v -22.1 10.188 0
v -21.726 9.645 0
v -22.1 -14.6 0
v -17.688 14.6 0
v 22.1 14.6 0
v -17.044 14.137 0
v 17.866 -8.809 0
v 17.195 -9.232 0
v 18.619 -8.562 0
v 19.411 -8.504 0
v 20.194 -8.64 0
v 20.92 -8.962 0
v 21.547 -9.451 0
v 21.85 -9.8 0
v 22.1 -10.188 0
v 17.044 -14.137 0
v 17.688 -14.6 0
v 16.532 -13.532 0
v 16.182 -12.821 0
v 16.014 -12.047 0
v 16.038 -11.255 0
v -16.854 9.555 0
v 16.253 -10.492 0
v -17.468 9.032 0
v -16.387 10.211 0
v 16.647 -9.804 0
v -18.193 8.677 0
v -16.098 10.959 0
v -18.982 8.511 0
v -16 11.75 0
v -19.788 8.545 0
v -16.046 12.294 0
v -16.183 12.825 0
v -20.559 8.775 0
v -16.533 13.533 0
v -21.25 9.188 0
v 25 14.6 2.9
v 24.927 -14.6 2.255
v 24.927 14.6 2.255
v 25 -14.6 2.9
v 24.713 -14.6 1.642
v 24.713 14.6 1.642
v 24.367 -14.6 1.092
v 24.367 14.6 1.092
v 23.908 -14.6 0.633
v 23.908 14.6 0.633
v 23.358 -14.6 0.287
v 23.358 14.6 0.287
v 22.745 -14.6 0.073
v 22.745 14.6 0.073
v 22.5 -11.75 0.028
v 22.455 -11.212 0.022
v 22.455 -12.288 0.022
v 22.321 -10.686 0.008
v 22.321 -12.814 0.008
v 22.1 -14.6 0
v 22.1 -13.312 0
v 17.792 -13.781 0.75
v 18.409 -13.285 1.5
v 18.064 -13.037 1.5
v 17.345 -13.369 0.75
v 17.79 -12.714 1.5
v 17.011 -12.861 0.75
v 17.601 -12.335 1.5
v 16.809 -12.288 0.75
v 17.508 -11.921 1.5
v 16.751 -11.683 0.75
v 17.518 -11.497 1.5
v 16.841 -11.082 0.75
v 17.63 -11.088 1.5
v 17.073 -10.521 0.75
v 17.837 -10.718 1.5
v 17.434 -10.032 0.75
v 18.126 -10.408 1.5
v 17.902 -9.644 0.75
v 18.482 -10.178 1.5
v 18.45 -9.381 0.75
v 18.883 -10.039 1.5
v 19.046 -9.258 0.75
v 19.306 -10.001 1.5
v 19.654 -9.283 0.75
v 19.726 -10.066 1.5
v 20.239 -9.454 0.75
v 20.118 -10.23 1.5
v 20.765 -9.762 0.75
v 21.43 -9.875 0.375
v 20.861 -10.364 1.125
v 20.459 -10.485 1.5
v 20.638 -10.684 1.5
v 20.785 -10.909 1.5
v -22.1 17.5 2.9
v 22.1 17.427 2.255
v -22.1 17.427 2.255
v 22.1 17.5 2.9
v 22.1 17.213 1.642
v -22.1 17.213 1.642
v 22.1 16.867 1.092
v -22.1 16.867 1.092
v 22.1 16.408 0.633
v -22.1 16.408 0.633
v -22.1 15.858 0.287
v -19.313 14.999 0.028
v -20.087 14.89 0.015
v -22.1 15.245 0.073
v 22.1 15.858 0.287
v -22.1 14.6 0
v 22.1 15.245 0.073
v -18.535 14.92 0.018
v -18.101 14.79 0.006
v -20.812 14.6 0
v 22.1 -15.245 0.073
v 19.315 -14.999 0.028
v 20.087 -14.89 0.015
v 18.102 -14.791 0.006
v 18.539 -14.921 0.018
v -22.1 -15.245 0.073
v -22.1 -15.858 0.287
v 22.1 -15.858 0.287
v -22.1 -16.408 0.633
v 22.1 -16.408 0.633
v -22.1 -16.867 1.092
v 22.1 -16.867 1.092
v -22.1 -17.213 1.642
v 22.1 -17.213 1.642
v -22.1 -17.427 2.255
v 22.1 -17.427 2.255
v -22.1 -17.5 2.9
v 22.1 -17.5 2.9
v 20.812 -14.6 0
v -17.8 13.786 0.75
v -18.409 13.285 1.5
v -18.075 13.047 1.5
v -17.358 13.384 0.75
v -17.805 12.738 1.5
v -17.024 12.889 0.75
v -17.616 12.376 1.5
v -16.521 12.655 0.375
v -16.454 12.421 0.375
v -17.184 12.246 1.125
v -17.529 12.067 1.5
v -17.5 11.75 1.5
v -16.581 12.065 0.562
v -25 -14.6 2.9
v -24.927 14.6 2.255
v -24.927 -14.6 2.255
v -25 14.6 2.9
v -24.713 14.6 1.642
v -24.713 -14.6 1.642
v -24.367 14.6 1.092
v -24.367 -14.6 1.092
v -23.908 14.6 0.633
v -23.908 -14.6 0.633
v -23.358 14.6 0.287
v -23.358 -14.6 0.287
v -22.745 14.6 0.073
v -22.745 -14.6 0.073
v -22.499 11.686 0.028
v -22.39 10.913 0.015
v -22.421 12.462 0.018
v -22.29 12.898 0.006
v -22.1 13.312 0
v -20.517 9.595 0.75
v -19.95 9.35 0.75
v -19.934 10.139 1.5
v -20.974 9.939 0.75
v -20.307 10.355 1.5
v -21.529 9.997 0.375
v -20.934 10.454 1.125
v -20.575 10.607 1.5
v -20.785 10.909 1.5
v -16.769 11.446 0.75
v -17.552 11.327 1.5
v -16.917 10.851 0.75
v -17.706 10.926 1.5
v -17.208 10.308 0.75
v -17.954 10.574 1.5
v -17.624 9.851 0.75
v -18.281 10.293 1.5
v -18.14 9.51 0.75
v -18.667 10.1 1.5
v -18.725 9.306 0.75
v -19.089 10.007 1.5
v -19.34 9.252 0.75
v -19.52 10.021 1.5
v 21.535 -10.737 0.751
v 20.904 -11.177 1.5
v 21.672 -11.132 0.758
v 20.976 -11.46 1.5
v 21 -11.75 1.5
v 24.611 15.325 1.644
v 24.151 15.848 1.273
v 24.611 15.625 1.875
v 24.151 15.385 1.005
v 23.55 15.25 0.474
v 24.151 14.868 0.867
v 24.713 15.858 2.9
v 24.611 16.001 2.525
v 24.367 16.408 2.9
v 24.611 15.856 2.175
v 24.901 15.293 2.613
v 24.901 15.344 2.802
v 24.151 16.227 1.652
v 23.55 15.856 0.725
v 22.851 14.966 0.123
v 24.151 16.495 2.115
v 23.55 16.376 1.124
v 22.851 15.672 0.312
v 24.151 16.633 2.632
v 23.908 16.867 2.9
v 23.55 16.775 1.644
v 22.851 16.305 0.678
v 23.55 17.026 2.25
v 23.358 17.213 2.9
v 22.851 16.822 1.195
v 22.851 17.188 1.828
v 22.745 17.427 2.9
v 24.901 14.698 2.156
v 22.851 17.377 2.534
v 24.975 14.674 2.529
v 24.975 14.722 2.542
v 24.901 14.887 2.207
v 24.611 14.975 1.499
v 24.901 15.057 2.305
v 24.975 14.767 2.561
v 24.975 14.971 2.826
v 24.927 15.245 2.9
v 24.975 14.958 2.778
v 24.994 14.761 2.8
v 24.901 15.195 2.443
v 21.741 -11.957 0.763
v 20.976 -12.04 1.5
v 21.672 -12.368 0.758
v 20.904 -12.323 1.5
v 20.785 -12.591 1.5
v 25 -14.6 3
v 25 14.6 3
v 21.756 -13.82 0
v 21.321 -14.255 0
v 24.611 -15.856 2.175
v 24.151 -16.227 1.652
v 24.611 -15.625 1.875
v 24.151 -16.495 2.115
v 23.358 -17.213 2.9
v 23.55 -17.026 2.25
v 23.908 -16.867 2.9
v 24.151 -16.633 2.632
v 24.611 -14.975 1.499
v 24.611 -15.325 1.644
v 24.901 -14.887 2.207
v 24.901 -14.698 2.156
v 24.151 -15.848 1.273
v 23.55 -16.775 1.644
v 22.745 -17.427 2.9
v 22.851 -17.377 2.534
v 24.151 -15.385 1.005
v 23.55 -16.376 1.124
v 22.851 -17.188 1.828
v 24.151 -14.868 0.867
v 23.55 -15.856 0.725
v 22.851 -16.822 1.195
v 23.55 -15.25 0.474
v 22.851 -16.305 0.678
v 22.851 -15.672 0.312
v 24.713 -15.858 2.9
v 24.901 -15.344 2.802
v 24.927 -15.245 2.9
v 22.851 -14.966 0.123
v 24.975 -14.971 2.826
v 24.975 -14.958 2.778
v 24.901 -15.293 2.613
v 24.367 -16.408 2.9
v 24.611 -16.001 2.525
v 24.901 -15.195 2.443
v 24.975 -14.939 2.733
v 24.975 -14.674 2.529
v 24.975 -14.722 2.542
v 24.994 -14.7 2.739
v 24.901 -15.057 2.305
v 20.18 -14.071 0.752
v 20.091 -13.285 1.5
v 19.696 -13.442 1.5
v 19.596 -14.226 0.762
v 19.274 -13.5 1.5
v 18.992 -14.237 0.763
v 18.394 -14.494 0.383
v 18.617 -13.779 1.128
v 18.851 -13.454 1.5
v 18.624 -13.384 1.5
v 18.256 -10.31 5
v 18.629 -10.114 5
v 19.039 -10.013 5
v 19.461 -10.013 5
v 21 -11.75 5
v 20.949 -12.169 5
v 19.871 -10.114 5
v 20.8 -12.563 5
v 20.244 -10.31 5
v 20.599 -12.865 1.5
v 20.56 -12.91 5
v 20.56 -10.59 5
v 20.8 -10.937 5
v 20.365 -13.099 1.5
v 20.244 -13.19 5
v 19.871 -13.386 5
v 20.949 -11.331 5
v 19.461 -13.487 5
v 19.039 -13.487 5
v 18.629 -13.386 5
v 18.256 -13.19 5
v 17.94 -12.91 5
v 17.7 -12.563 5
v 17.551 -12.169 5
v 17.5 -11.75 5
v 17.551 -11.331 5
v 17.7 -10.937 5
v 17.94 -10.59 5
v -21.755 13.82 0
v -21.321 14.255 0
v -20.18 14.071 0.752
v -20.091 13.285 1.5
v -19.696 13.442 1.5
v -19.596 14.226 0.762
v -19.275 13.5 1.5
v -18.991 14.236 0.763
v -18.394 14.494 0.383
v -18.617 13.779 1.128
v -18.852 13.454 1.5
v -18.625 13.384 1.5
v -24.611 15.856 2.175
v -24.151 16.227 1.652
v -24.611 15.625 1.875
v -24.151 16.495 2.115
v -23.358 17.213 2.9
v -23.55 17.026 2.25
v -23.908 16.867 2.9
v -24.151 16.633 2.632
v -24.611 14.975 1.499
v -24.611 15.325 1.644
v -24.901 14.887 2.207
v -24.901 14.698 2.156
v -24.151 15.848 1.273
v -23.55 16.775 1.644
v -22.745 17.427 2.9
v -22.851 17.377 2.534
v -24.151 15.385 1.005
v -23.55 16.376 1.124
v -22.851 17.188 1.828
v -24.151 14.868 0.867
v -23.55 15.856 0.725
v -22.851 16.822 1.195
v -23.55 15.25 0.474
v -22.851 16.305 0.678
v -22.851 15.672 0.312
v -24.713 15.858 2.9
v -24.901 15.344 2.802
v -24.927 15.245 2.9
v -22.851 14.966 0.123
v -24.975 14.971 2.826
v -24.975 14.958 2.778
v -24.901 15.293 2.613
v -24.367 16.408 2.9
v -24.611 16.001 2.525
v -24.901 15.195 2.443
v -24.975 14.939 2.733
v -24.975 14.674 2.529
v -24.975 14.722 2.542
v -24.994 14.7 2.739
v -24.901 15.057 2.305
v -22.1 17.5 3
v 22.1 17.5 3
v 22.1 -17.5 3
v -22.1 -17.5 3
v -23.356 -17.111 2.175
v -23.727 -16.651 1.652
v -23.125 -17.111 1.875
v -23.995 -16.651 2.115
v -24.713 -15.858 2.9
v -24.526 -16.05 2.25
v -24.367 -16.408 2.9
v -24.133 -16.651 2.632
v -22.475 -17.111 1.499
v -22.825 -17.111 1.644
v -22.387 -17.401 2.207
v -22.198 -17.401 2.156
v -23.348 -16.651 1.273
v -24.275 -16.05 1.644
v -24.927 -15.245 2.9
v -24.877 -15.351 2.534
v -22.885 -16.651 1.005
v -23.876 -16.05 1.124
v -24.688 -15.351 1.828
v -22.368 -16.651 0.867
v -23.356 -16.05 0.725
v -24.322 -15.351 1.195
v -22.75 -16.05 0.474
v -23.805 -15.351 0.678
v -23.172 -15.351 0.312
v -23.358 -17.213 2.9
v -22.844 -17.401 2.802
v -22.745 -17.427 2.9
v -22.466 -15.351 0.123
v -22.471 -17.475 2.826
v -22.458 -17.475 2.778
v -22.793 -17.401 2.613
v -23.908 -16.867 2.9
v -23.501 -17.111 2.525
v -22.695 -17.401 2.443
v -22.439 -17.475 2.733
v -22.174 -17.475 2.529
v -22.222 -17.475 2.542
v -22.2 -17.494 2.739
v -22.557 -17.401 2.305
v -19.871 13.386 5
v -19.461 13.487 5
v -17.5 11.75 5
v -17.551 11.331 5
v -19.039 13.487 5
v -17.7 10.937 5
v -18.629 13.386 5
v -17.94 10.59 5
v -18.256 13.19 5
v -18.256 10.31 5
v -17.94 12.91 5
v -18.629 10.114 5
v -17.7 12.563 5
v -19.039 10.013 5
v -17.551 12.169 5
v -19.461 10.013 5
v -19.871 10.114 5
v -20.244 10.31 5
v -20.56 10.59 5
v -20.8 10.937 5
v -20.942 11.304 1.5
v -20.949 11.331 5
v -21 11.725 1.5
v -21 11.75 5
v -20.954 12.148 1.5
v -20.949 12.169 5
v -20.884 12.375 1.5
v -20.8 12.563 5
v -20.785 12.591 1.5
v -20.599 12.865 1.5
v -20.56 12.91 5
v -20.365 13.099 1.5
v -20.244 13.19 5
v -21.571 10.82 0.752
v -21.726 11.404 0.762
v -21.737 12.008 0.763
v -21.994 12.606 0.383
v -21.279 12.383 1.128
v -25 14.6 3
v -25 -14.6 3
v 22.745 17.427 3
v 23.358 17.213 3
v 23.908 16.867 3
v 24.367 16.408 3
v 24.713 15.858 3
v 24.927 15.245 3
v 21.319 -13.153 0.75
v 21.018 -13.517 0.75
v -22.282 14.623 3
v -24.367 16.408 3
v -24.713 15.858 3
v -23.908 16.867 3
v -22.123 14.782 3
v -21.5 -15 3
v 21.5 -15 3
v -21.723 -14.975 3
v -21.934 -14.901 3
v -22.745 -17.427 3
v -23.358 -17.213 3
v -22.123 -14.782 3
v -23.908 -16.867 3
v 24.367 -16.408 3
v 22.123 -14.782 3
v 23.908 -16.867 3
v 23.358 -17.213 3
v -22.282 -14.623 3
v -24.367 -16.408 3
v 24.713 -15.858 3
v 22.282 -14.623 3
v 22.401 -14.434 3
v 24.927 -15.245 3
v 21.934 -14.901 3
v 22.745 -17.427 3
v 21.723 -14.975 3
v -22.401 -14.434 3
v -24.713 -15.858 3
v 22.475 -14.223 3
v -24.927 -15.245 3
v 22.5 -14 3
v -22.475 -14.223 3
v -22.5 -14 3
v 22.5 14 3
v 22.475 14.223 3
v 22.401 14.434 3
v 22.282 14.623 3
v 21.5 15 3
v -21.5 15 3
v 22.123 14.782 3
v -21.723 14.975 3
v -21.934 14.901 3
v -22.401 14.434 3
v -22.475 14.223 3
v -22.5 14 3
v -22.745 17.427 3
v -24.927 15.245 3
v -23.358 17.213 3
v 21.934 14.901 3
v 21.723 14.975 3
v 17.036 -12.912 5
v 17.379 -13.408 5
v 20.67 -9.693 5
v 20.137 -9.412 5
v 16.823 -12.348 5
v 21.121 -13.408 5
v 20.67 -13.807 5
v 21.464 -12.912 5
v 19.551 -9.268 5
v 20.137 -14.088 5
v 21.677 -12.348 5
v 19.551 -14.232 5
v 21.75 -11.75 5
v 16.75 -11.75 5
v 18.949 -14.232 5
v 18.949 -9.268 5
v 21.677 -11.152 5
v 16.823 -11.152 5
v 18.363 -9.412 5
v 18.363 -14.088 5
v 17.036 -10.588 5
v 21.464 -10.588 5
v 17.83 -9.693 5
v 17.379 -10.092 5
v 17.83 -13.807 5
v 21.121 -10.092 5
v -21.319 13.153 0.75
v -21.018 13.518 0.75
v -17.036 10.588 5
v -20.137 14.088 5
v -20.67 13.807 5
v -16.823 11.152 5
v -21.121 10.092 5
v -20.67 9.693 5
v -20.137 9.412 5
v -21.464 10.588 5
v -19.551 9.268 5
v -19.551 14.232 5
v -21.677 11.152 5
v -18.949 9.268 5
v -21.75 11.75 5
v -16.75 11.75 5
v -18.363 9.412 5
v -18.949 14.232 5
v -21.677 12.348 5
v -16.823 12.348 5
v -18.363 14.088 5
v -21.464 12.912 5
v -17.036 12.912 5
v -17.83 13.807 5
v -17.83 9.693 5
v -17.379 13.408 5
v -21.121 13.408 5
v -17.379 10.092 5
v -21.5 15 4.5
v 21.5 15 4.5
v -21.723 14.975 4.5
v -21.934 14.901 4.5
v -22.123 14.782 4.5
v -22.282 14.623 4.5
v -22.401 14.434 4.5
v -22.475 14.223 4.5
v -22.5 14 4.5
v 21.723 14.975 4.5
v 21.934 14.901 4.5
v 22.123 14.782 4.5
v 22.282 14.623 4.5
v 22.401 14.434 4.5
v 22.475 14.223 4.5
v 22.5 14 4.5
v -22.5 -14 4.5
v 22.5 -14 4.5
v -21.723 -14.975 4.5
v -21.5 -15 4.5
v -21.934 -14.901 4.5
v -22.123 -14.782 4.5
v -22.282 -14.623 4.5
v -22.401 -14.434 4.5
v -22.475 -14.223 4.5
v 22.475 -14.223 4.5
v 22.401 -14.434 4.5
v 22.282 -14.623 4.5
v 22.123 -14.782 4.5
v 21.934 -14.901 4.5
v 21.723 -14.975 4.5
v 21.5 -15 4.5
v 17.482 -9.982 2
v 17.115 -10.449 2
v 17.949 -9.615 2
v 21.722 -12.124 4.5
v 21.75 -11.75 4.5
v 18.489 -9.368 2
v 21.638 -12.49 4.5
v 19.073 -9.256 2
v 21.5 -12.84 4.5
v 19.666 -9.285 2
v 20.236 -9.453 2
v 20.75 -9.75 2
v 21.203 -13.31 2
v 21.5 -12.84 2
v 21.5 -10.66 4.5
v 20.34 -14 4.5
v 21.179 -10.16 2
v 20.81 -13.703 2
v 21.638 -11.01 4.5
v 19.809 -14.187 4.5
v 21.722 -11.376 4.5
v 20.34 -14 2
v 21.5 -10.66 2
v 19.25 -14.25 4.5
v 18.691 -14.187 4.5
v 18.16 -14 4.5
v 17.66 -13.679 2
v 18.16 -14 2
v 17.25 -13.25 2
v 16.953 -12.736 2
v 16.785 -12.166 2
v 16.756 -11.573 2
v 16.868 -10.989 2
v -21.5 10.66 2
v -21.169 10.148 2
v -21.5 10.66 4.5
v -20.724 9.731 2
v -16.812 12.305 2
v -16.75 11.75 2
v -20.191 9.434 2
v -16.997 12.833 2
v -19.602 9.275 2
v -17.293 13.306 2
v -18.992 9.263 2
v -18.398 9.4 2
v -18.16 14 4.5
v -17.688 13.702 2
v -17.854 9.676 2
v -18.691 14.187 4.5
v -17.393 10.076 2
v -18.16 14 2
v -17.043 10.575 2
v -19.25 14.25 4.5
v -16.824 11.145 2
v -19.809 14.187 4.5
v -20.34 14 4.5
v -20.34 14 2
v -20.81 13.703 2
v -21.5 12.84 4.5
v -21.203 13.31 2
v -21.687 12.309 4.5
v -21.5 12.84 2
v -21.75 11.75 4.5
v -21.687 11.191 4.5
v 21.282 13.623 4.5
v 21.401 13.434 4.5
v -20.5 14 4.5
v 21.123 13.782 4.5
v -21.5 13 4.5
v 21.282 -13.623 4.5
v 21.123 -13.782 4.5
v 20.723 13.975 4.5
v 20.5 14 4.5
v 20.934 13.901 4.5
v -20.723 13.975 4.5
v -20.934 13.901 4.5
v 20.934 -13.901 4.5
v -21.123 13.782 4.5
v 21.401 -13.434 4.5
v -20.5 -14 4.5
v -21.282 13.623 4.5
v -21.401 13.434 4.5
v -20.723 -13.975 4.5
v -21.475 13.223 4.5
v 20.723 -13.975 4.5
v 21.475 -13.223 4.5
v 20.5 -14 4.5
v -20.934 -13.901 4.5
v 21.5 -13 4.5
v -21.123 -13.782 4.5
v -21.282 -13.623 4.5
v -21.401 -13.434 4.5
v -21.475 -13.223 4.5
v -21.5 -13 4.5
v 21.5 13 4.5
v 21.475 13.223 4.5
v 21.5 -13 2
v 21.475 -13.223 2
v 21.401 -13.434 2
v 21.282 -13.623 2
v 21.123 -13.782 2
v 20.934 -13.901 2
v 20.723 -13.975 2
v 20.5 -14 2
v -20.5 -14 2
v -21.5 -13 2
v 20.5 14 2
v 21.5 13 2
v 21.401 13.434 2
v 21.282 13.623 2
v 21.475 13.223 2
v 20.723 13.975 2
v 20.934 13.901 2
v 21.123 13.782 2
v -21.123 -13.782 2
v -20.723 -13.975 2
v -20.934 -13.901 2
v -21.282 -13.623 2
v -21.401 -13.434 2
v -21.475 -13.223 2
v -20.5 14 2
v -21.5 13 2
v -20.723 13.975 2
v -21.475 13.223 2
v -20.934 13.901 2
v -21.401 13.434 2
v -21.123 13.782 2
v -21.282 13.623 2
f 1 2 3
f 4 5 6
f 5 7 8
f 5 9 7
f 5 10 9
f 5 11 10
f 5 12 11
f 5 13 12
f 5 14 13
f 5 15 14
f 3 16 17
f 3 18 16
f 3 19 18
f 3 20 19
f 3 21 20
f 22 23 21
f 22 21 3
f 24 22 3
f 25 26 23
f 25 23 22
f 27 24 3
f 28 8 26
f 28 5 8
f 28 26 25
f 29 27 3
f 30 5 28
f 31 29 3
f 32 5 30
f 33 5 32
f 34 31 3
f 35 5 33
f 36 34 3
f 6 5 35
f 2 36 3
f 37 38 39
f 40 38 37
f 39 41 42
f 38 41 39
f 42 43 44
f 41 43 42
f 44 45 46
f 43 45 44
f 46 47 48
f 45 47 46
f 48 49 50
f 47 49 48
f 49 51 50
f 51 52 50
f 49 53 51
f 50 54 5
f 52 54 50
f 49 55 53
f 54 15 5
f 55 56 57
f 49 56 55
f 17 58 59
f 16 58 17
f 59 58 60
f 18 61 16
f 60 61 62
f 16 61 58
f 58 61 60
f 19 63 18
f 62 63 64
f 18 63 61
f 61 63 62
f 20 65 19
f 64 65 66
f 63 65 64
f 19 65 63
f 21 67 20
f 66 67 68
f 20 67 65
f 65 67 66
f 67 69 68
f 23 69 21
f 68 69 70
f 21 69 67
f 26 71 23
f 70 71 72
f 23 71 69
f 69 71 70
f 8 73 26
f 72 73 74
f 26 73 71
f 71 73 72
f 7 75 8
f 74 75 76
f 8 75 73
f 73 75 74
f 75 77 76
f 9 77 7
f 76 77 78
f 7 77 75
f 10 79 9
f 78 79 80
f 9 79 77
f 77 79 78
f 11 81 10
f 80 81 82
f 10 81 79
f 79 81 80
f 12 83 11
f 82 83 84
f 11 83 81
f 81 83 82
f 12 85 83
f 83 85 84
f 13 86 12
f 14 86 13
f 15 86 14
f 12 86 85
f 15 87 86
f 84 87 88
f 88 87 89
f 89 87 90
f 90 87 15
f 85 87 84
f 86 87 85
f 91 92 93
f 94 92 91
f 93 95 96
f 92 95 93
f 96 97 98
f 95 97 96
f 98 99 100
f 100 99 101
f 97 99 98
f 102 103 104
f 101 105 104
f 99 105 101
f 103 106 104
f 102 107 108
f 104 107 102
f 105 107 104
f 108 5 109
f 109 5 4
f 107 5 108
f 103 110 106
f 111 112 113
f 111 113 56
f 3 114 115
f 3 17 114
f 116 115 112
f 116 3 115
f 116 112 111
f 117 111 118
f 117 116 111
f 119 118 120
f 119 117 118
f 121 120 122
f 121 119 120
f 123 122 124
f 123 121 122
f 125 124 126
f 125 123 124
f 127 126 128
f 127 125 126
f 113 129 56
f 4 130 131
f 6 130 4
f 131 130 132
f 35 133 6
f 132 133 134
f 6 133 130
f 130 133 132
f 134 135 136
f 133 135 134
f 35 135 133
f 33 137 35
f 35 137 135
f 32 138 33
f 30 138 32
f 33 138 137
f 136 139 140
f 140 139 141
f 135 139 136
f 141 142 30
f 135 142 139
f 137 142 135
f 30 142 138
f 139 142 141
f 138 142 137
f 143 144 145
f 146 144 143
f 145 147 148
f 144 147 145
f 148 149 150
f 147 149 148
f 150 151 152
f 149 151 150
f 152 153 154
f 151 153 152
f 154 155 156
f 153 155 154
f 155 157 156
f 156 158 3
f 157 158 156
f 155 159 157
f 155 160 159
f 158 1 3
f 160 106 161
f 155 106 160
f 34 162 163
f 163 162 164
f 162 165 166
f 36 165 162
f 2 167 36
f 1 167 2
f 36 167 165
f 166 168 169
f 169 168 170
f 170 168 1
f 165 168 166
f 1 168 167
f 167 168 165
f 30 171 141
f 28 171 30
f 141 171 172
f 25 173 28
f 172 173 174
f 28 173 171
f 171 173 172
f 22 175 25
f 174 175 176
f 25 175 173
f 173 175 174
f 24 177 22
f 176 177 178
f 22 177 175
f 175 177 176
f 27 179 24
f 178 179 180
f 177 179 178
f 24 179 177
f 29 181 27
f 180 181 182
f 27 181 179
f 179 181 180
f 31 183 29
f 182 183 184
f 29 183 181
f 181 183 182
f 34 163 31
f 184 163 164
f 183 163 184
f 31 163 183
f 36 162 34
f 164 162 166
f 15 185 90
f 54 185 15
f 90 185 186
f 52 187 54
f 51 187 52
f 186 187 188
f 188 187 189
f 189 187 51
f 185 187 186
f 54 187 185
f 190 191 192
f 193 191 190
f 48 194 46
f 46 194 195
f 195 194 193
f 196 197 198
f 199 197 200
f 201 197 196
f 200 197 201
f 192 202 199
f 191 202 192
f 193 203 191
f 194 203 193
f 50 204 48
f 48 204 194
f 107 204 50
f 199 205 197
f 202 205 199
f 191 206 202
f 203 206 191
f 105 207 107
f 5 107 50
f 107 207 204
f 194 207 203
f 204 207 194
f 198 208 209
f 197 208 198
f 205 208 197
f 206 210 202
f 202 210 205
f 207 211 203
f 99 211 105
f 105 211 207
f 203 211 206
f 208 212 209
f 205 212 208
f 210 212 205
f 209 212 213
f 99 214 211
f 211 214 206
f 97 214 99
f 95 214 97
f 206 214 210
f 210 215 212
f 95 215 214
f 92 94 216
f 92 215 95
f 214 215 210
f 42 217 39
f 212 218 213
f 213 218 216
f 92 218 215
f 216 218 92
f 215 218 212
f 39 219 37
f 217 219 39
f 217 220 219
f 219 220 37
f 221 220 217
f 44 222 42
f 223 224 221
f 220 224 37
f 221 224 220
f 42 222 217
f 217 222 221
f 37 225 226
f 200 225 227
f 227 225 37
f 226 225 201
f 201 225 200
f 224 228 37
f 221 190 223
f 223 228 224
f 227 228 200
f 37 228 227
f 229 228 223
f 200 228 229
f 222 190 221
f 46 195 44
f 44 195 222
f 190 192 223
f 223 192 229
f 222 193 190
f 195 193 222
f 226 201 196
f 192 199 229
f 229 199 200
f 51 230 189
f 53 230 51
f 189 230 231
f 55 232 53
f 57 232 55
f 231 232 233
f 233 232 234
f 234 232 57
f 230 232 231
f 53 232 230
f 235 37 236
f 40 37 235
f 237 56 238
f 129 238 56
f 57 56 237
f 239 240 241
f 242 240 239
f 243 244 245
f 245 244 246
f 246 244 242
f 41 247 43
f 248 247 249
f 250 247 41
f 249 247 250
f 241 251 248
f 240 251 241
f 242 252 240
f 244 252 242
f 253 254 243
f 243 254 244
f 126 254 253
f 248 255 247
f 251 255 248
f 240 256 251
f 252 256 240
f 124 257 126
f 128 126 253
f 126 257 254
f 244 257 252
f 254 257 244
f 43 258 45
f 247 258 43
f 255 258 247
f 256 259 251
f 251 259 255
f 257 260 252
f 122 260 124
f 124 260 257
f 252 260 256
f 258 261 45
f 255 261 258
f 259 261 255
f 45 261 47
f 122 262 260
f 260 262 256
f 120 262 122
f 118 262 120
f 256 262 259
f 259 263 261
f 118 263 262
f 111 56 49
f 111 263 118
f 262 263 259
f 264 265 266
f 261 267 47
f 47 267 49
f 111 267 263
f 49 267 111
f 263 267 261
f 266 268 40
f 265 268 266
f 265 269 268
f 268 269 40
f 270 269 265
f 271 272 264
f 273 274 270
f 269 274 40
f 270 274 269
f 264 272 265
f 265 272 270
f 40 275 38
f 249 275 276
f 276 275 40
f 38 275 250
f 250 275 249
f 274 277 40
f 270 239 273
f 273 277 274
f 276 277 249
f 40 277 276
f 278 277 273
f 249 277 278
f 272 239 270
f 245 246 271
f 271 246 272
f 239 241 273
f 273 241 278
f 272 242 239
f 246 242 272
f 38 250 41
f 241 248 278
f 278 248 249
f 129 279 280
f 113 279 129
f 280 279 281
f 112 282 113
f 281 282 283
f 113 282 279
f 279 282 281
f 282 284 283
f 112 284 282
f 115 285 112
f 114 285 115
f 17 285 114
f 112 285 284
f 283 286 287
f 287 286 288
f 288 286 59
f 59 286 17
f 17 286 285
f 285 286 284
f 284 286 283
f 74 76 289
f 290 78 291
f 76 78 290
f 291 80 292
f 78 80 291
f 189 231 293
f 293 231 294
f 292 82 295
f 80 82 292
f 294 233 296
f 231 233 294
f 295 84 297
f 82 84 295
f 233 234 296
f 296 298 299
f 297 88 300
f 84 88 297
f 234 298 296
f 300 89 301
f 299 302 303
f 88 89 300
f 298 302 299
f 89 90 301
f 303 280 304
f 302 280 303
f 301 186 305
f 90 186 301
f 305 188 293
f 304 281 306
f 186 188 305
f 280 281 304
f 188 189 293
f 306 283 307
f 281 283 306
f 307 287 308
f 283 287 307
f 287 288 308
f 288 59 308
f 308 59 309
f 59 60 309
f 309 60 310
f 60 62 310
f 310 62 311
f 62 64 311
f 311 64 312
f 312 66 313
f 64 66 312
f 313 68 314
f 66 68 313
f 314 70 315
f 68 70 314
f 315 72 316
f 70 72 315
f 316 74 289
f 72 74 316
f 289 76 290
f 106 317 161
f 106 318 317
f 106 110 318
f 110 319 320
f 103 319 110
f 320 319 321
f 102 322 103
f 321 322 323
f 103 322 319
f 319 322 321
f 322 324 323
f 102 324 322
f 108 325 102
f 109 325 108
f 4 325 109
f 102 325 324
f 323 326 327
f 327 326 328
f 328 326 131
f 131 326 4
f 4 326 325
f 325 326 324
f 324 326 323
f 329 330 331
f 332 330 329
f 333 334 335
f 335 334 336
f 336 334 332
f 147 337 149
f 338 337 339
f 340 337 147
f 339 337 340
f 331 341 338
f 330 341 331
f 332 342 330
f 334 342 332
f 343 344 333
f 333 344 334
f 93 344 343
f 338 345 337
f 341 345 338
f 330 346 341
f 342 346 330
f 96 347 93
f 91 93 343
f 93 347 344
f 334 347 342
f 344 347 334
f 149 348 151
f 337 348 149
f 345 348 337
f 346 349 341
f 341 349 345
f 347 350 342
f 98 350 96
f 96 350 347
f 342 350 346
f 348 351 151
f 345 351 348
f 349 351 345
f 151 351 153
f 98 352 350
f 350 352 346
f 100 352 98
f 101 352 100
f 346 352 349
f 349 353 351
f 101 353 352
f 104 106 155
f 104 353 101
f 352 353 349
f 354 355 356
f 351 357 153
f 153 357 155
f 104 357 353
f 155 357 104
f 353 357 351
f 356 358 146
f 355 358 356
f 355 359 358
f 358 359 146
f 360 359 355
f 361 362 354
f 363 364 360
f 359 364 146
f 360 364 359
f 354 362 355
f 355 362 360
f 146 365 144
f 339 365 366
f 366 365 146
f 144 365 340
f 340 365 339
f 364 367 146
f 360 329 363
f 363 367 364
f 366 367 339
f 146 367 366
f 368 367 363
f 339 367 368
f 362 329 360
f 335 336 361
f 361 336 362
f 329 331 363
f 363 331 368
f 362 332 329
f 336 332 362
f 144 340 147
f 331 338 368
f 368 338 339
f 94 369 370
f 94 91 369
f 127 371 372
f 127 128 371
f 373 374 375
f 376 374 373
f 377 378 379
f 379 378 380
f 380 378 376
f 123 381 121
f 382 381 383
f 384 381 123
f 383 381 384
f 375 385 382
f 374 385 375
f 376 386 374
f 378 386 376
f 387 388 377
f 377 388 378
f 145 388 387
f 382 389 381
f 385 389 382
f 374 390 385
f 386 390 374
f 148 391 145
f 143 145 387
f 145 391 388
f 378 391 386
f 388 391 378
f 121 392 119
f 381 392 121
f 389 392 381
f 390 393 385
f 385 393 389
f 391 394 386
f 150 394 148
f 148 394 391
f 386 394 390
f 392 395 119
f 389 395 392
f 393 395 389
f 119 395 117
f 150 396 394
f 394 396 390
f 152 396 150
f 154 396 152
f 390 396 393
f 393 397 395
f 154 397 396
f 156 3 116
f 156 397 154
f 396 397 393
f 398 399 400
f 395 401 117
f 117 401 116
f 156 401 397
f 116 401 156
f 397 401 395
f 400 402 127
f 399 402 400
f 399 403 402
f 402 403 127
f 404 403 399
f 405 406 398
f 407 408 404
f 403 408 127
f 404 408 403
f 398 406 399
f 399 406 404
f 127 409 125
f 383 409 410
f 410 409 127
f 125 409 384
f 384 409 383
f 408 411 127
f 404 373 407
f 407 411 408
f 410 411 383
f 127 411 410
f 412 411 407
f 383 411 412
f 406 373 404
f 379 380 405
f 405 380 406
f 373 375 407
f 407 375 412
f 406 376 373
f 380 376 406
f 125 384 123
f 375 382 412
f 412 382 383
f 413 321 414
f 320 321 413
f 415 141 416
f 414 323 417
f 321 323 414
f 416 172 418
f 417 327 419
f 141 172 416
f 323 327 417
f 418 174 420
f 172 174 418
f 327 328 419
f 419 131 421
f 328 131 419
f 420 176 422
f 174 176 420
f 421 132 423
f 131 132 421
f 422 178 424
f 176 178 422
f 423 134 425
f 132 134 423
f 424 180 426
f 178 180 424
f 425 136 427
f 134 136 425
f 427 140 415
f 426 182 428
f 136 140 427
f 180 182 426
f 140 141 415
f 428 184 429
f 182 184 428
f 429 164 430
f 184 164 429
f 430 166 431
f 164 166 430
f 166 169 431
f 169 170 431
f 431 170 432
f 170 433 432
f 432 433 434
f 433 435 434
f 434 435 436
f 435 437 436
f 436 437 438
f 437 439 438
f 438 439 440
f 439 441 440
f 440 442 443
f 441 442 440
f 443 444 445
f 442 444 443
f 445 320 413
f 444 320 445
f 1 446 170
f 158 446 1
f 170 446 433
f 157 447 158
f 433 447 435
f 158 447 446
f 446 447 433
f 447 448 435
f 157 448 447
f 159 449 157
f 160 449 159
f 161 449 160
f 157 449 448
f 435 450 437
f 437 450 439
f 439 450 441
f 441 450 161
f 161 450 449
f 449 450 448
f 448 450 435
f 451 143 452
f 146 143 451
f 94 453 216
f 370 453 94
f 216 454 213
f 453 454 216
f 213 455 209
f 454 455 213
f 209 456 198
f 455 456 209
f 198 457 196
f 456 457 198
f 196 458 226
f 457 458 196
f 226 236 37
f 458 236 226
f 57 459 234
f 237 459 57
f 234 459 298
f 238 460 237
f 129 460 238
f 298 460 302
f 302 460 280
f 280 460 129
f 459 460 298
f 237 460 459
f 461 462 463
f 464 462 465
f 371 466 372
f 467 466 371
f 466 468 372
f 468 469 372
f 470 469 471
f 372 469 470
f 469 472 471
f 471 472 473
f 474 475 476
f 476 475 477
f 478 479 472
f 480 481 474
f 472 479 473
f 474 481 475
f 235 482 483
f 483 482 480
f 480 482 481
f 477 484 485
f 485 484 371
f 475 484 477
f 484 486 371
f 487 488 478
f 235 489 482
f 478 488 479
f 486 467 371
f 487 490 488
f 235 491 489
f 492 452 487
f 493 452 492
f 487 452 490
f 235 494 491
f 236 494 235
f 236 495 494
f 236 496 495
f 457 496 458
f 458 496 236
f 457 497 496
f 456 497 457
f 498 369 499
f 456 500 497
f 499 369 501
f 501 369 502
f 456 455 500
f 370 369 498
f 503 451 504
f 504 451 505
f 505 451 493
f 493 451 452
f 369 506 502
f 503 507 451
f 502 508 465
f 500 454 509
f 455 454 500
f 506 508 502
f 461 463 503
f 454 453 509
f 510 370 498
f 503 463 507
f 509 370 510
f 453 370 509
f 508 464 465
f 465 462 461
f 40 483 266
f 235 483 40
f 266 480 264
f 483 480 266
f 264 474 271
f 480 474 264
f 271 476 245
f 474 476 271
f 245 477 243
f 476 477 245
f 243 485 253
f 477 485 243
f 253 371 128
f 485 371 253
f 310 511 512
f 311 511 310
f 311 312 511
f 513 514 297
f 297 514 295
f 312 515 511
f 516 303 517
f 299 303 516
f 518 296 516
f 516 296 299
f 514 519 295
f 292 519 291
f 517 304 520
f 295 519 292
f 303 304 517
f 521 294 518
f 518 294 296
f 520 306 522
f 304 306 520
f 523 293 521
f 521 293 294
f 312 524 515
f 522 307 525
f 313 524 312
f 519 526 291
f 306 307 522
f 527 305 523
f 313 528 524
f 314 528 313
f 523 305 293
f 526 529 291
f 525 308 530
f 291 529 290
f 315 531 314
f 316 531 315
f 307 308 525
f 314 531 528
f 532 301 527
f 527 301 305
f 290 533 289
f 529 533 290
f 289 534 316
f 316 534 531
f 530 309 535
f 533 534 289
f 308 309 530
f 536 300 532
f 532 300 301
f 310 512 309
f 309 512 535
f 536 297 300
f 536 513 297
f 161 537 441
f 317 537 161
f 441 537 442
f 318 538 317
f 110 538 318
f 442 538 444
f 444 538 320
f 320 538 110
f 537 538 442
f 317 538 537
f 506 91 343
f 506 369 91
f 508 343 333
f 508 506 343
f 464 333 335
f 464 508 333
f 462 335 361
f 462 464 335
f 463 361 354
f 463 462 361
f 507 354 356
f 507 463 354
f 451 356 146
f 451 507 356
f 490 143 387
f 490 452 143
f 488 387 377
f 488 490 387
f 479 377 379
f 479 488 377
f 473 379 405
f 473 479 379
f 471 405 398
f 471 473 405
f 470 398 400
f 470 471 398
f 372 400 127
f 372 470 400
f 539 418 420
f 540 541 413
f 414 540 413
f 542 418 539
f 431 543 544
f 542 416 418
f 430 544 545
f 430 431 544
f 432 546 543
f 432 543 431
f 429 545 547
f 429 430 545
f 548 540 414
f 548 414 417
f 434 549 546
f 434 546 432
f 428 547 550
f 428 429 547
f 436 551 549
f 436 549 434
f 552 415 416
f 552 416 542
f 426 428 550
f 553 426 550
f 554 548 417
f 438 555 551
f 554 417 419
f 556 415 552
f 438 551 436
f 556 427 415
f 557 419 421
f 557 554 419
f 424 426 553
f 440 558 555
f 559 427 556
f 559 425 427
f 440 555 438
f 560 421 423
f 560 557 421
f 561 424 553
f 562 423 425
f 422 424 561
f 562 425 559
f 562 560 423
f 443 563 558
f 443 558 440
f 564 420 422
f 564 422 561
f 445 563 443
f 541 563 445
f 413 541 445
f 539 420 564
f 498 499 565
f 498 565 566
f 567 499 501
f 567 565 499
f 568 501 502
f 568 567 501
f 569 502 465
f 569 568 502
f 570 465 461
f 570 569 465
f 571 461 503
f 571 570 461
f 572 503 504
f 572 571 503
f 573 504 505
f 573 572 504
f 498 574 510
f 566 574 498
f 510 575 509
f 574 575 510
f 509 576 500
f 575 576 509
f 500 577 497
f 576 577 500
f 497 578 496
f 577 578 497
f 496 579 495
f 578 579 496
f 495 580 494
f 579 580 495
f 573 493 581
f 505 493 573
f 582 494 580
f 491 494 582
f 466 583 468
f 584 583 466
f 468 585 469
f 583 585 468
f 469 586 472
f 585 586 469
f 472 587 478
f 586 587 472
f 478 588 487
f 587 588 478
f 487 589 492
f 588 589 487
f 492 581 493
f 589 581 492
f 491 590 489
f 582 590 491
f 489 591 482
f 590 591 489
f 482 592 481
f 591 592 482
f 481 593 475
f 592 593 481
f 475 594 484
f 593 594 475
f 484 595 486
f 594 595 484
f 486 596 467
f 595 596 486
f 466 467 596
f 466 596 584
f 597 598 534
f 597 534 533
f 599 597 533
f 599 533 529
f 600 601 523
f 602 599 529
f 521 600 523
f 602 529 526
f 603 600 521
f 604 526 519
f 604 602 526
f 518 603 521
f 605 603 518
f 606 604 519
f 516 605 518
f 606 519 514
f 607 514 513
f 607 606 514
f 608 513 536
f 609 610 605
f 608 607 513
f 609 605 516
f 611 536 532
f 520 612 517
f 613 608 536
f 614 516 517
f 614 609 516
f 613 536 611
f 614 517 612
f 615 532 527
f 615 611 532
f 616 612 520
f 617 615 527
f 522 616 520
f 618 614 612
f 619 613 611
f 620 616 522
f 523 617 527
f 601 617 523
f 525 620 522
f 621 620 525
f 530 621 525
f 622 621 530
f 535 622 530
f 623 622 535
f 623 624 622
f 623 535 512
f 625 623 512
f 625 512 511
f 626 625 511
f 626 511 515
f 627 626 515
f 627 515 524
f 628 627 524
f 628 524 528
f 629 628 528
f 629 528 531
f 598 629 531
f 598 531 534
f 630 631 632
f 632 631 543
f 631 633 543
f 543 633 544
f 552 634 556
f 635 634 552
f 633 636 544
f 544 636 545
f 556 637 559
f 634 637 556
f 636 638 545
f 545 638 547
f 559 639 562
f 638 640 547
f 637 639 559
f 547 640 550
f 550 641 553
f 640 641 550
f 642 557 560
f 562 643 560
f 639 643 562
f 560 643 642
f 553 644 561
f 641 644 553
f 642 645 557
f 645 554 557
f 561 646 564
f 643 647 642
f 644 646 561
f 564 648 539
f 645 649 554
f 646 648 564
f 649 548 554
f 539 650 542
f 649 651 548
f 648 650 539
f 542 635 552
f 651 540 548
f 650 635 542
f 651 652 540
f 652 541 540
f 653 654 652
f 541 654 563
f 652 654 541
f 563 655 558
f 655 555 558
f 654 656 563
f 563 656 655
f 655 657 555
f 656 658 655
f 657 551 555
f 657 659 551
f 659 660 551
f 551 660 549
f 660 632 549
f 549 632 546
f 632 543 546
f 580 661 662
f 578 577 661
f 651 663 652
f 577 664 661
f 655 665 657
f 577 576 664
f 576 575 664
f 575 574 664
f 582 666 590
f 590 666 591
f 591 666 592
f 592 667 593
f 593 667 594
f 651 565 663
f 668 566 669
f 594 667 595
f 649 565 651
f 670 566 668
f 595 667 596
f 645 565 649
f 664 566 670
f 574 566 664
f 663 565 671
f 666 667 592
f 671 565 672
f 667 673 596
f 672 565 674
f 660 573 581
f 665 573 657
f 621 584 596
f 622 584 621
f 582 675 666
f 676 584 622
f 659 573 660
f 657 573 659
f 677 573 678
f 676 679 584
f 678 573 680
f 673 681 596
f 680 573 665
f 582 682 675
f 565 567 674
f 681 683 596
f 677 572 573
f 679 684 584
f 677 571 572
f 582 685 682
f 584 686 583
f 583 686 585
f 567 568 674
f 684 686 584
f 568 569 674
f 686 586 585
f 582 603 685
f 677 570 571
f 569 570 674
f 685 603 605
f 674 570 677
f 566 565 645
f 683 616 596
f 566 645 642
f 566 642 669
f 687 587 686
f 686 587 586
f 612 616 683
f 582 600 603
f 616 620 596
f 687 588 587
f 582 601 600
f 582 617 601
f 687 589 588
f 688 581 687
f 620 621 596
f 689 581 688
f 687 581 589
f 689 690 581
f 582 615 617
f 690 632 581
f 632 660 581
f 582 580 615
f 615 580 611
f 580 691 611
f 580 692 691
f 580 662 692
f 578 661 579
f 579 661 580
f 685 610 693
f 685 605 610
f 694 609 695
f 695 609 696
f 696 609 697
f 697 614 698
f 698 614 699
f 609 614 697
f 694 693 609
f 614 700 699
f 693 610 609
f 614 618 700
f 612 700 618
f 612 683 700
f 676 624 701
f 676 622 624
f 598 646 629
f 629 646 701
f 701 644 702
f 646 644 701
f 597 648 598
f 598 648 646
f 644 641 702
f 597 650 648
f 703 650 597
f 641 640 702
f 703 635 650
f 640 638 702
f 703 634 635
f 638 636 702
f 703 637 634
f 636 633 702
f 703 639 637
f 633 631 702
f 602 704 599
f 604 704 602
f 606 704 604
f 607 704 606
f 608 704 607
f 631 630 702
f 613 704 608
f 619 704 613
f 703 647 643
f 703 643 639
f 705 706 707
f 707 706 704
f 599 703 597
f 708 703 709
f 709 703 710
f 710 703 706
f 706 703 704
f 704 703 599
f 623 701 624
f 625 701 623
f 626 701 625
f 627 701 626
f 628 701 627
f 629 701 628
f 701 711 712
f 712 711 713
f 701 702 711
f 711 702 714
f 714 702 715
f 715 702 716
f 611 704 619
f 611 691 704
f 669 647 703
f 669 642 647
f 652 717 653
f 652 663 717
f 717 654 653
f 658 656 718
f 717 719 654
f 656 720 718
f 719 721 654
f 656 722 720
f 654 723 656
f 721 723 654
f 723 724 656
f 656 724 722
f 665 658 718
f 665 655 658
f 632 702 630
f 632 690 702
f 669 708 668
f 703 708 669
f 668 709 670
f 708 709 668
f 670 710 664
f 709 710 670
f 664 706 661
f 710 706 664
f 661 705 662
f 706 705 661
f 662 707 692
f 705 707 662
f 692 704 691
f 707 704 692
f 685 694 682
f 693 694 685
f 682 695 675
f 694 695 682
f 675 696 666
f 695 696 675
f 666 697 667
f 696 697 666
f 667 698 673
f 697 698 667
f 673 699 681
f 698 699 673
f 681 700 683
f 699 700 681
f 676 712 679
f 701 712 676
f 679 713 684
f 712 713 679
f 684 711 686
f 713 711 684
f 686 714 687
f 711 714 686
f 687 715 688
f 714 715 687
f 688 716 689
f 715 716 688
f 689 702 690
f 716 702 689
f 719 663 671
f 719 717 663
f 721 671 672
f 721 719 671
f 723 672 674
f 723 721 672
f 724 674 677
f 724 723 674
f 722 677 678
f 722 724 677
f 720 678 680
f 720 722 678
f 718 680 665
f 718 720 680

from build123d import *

# Parameters (mm, degrees)
SKETCH_W        = 50
SKETCH_H        = 35
PAD_DEPTH       = 3
SKETCH002_W     = 45
SKETCH002_H     = 30
PAD001_DEPTH    = 1.5
SKETCH003_W     = 43
SKETCH003_H     = 28
POCKET001_DEPTH = 2.5
FILLET_R        = 2.9
FILLET001_R     = 1
SKETCH005_R     = 2.5
PAD002_DEPTH    = 5
SKETCH004_R     = 2.5
PAD003_DEPTH    = 5
SKETCH006_R     = 1.75
POCKET_DEPTH    = 5
SKETCH007_R     = 1.75
POCKET002_DEPTH = 5
CHAMFER_SIZE    = 1.5
CHAMFER001_SIZE = 1.5


with BuildPart() as part:
    # Sketch → Pad (new body)
    with BuildSketch(Plane.XY):
        Rectangle(SKETCH_W, SKETCH_H)
    extrude(amount=PAD_DEPTH)

    # Sketch002 → Pad001 (join)
    with BuildSketch(Plane.XY.offset(3)):
        Rectangle(SKETCH002_W, SKETCH002_H)
    extrude(amount=PAD001_DEPTH)

    # Sketch003 (on Face11 of Pad001) → Pocket001 (cut)
    with BuildSketch(Plane.XY.offset(4.5)):
        Rectangle(SKETCH003_W, SKETCH003_H)
    extrude(amount=-POCKET001_DEPTH, mode=Mode.SUBTRACT)

    # Fillet
    fillet_edges = [part.edges().sort_by_distance(p)[0] for p in [
        (0, 17.5, 0),
        (-25, 17.5, 1.5),
        (-25, 0, 0),
        (-25, -17.5, 1.5),
        (0, -17.5, 0),
        (25, -17.5, 1.5),
        (25, 0, 0),
        (25, 17.5, 1.5),
    ]]
    fillet(fillet_edges, radius=FILLET_R)

    # Fillet001
    fillet001_edges = [part.edges().sort_by_distance(p)[0] for p in [
        (-21.5, -14, 3.25),
        (22.5, -15, 3.75),
        (22.5, 15, 3.75),
        (-22.5, 15, 3.75),
        (-22.5, -15, 3.75),
        (21.5, 14, 3.25),
        (-21.5, 14, 3.25),
        (21.5, -14, 3.25),
    ]]
    fillet(fillet001_edges, radius=FILLET001_R)

    # Sketch005 → Pad002 (join)
    with BuildSketch(Plane.XY):
        with Locations((-19.25, 11.75)):
            Circle(SKETCH005_R)
    extrude(amount=PAD002_DEPTH)

    # Sketch004 (on Face35 of Fillet001) → Pad003 (join)
    with BuildSketch(Plane(origin=(0, 0, 0), x_dir=(1, 0, 0), z_dir=(0, 0, -1))):
        with Locations((19.25, 11.75)):
            Circle(SKETCH004_R)
    extrude(amount=-PAD003_DEPTH)

    # Sketch006 (on Face48 of Pad003) → Pocket (cut)
    with BuildSketch(Plane(origin=(0, 0, 0), x_dir=(1, 0, 0), z_dir=(0, 0, -1))):
        with Locations((-19.25, -11.75)):
            Circle(SKETCH006_R)
    extrude(amount=-POCKET_DEPTH, mode=Mode.SUBTRACT)

    # Sketch007 (on Face48 of Pocket) → Pocket002 (cut)
    with BuildSketch(Plane(origin=(0, 0, 0), x_dir=(1, 0, 0), z_dir=(0, 0, -1))):
        with Locations((19.25, 11.75)):
            Circle(SKETCH007_R)
    extrude(amount=-POCKET002_DEPTH, mode=Mode.SUBTRACT)

    # Chamfer
    chamfer_edges = [part.edges().sort_by_distance(p)[0] for p in [
        (-21, 11.75, 0),
    ]]
    chamfer(chamfer_edges, length=CHAMFER_SIZE)

    # Chamfer001
    chamfer001_edges = [part.edges().sort_by_distance(p)[0] for p in [
        (17.5, -11.75, 0),
    ]]
    chamfer(chamfer001_edges, length=CHAMFER001_SIZE)


solid = part.part
